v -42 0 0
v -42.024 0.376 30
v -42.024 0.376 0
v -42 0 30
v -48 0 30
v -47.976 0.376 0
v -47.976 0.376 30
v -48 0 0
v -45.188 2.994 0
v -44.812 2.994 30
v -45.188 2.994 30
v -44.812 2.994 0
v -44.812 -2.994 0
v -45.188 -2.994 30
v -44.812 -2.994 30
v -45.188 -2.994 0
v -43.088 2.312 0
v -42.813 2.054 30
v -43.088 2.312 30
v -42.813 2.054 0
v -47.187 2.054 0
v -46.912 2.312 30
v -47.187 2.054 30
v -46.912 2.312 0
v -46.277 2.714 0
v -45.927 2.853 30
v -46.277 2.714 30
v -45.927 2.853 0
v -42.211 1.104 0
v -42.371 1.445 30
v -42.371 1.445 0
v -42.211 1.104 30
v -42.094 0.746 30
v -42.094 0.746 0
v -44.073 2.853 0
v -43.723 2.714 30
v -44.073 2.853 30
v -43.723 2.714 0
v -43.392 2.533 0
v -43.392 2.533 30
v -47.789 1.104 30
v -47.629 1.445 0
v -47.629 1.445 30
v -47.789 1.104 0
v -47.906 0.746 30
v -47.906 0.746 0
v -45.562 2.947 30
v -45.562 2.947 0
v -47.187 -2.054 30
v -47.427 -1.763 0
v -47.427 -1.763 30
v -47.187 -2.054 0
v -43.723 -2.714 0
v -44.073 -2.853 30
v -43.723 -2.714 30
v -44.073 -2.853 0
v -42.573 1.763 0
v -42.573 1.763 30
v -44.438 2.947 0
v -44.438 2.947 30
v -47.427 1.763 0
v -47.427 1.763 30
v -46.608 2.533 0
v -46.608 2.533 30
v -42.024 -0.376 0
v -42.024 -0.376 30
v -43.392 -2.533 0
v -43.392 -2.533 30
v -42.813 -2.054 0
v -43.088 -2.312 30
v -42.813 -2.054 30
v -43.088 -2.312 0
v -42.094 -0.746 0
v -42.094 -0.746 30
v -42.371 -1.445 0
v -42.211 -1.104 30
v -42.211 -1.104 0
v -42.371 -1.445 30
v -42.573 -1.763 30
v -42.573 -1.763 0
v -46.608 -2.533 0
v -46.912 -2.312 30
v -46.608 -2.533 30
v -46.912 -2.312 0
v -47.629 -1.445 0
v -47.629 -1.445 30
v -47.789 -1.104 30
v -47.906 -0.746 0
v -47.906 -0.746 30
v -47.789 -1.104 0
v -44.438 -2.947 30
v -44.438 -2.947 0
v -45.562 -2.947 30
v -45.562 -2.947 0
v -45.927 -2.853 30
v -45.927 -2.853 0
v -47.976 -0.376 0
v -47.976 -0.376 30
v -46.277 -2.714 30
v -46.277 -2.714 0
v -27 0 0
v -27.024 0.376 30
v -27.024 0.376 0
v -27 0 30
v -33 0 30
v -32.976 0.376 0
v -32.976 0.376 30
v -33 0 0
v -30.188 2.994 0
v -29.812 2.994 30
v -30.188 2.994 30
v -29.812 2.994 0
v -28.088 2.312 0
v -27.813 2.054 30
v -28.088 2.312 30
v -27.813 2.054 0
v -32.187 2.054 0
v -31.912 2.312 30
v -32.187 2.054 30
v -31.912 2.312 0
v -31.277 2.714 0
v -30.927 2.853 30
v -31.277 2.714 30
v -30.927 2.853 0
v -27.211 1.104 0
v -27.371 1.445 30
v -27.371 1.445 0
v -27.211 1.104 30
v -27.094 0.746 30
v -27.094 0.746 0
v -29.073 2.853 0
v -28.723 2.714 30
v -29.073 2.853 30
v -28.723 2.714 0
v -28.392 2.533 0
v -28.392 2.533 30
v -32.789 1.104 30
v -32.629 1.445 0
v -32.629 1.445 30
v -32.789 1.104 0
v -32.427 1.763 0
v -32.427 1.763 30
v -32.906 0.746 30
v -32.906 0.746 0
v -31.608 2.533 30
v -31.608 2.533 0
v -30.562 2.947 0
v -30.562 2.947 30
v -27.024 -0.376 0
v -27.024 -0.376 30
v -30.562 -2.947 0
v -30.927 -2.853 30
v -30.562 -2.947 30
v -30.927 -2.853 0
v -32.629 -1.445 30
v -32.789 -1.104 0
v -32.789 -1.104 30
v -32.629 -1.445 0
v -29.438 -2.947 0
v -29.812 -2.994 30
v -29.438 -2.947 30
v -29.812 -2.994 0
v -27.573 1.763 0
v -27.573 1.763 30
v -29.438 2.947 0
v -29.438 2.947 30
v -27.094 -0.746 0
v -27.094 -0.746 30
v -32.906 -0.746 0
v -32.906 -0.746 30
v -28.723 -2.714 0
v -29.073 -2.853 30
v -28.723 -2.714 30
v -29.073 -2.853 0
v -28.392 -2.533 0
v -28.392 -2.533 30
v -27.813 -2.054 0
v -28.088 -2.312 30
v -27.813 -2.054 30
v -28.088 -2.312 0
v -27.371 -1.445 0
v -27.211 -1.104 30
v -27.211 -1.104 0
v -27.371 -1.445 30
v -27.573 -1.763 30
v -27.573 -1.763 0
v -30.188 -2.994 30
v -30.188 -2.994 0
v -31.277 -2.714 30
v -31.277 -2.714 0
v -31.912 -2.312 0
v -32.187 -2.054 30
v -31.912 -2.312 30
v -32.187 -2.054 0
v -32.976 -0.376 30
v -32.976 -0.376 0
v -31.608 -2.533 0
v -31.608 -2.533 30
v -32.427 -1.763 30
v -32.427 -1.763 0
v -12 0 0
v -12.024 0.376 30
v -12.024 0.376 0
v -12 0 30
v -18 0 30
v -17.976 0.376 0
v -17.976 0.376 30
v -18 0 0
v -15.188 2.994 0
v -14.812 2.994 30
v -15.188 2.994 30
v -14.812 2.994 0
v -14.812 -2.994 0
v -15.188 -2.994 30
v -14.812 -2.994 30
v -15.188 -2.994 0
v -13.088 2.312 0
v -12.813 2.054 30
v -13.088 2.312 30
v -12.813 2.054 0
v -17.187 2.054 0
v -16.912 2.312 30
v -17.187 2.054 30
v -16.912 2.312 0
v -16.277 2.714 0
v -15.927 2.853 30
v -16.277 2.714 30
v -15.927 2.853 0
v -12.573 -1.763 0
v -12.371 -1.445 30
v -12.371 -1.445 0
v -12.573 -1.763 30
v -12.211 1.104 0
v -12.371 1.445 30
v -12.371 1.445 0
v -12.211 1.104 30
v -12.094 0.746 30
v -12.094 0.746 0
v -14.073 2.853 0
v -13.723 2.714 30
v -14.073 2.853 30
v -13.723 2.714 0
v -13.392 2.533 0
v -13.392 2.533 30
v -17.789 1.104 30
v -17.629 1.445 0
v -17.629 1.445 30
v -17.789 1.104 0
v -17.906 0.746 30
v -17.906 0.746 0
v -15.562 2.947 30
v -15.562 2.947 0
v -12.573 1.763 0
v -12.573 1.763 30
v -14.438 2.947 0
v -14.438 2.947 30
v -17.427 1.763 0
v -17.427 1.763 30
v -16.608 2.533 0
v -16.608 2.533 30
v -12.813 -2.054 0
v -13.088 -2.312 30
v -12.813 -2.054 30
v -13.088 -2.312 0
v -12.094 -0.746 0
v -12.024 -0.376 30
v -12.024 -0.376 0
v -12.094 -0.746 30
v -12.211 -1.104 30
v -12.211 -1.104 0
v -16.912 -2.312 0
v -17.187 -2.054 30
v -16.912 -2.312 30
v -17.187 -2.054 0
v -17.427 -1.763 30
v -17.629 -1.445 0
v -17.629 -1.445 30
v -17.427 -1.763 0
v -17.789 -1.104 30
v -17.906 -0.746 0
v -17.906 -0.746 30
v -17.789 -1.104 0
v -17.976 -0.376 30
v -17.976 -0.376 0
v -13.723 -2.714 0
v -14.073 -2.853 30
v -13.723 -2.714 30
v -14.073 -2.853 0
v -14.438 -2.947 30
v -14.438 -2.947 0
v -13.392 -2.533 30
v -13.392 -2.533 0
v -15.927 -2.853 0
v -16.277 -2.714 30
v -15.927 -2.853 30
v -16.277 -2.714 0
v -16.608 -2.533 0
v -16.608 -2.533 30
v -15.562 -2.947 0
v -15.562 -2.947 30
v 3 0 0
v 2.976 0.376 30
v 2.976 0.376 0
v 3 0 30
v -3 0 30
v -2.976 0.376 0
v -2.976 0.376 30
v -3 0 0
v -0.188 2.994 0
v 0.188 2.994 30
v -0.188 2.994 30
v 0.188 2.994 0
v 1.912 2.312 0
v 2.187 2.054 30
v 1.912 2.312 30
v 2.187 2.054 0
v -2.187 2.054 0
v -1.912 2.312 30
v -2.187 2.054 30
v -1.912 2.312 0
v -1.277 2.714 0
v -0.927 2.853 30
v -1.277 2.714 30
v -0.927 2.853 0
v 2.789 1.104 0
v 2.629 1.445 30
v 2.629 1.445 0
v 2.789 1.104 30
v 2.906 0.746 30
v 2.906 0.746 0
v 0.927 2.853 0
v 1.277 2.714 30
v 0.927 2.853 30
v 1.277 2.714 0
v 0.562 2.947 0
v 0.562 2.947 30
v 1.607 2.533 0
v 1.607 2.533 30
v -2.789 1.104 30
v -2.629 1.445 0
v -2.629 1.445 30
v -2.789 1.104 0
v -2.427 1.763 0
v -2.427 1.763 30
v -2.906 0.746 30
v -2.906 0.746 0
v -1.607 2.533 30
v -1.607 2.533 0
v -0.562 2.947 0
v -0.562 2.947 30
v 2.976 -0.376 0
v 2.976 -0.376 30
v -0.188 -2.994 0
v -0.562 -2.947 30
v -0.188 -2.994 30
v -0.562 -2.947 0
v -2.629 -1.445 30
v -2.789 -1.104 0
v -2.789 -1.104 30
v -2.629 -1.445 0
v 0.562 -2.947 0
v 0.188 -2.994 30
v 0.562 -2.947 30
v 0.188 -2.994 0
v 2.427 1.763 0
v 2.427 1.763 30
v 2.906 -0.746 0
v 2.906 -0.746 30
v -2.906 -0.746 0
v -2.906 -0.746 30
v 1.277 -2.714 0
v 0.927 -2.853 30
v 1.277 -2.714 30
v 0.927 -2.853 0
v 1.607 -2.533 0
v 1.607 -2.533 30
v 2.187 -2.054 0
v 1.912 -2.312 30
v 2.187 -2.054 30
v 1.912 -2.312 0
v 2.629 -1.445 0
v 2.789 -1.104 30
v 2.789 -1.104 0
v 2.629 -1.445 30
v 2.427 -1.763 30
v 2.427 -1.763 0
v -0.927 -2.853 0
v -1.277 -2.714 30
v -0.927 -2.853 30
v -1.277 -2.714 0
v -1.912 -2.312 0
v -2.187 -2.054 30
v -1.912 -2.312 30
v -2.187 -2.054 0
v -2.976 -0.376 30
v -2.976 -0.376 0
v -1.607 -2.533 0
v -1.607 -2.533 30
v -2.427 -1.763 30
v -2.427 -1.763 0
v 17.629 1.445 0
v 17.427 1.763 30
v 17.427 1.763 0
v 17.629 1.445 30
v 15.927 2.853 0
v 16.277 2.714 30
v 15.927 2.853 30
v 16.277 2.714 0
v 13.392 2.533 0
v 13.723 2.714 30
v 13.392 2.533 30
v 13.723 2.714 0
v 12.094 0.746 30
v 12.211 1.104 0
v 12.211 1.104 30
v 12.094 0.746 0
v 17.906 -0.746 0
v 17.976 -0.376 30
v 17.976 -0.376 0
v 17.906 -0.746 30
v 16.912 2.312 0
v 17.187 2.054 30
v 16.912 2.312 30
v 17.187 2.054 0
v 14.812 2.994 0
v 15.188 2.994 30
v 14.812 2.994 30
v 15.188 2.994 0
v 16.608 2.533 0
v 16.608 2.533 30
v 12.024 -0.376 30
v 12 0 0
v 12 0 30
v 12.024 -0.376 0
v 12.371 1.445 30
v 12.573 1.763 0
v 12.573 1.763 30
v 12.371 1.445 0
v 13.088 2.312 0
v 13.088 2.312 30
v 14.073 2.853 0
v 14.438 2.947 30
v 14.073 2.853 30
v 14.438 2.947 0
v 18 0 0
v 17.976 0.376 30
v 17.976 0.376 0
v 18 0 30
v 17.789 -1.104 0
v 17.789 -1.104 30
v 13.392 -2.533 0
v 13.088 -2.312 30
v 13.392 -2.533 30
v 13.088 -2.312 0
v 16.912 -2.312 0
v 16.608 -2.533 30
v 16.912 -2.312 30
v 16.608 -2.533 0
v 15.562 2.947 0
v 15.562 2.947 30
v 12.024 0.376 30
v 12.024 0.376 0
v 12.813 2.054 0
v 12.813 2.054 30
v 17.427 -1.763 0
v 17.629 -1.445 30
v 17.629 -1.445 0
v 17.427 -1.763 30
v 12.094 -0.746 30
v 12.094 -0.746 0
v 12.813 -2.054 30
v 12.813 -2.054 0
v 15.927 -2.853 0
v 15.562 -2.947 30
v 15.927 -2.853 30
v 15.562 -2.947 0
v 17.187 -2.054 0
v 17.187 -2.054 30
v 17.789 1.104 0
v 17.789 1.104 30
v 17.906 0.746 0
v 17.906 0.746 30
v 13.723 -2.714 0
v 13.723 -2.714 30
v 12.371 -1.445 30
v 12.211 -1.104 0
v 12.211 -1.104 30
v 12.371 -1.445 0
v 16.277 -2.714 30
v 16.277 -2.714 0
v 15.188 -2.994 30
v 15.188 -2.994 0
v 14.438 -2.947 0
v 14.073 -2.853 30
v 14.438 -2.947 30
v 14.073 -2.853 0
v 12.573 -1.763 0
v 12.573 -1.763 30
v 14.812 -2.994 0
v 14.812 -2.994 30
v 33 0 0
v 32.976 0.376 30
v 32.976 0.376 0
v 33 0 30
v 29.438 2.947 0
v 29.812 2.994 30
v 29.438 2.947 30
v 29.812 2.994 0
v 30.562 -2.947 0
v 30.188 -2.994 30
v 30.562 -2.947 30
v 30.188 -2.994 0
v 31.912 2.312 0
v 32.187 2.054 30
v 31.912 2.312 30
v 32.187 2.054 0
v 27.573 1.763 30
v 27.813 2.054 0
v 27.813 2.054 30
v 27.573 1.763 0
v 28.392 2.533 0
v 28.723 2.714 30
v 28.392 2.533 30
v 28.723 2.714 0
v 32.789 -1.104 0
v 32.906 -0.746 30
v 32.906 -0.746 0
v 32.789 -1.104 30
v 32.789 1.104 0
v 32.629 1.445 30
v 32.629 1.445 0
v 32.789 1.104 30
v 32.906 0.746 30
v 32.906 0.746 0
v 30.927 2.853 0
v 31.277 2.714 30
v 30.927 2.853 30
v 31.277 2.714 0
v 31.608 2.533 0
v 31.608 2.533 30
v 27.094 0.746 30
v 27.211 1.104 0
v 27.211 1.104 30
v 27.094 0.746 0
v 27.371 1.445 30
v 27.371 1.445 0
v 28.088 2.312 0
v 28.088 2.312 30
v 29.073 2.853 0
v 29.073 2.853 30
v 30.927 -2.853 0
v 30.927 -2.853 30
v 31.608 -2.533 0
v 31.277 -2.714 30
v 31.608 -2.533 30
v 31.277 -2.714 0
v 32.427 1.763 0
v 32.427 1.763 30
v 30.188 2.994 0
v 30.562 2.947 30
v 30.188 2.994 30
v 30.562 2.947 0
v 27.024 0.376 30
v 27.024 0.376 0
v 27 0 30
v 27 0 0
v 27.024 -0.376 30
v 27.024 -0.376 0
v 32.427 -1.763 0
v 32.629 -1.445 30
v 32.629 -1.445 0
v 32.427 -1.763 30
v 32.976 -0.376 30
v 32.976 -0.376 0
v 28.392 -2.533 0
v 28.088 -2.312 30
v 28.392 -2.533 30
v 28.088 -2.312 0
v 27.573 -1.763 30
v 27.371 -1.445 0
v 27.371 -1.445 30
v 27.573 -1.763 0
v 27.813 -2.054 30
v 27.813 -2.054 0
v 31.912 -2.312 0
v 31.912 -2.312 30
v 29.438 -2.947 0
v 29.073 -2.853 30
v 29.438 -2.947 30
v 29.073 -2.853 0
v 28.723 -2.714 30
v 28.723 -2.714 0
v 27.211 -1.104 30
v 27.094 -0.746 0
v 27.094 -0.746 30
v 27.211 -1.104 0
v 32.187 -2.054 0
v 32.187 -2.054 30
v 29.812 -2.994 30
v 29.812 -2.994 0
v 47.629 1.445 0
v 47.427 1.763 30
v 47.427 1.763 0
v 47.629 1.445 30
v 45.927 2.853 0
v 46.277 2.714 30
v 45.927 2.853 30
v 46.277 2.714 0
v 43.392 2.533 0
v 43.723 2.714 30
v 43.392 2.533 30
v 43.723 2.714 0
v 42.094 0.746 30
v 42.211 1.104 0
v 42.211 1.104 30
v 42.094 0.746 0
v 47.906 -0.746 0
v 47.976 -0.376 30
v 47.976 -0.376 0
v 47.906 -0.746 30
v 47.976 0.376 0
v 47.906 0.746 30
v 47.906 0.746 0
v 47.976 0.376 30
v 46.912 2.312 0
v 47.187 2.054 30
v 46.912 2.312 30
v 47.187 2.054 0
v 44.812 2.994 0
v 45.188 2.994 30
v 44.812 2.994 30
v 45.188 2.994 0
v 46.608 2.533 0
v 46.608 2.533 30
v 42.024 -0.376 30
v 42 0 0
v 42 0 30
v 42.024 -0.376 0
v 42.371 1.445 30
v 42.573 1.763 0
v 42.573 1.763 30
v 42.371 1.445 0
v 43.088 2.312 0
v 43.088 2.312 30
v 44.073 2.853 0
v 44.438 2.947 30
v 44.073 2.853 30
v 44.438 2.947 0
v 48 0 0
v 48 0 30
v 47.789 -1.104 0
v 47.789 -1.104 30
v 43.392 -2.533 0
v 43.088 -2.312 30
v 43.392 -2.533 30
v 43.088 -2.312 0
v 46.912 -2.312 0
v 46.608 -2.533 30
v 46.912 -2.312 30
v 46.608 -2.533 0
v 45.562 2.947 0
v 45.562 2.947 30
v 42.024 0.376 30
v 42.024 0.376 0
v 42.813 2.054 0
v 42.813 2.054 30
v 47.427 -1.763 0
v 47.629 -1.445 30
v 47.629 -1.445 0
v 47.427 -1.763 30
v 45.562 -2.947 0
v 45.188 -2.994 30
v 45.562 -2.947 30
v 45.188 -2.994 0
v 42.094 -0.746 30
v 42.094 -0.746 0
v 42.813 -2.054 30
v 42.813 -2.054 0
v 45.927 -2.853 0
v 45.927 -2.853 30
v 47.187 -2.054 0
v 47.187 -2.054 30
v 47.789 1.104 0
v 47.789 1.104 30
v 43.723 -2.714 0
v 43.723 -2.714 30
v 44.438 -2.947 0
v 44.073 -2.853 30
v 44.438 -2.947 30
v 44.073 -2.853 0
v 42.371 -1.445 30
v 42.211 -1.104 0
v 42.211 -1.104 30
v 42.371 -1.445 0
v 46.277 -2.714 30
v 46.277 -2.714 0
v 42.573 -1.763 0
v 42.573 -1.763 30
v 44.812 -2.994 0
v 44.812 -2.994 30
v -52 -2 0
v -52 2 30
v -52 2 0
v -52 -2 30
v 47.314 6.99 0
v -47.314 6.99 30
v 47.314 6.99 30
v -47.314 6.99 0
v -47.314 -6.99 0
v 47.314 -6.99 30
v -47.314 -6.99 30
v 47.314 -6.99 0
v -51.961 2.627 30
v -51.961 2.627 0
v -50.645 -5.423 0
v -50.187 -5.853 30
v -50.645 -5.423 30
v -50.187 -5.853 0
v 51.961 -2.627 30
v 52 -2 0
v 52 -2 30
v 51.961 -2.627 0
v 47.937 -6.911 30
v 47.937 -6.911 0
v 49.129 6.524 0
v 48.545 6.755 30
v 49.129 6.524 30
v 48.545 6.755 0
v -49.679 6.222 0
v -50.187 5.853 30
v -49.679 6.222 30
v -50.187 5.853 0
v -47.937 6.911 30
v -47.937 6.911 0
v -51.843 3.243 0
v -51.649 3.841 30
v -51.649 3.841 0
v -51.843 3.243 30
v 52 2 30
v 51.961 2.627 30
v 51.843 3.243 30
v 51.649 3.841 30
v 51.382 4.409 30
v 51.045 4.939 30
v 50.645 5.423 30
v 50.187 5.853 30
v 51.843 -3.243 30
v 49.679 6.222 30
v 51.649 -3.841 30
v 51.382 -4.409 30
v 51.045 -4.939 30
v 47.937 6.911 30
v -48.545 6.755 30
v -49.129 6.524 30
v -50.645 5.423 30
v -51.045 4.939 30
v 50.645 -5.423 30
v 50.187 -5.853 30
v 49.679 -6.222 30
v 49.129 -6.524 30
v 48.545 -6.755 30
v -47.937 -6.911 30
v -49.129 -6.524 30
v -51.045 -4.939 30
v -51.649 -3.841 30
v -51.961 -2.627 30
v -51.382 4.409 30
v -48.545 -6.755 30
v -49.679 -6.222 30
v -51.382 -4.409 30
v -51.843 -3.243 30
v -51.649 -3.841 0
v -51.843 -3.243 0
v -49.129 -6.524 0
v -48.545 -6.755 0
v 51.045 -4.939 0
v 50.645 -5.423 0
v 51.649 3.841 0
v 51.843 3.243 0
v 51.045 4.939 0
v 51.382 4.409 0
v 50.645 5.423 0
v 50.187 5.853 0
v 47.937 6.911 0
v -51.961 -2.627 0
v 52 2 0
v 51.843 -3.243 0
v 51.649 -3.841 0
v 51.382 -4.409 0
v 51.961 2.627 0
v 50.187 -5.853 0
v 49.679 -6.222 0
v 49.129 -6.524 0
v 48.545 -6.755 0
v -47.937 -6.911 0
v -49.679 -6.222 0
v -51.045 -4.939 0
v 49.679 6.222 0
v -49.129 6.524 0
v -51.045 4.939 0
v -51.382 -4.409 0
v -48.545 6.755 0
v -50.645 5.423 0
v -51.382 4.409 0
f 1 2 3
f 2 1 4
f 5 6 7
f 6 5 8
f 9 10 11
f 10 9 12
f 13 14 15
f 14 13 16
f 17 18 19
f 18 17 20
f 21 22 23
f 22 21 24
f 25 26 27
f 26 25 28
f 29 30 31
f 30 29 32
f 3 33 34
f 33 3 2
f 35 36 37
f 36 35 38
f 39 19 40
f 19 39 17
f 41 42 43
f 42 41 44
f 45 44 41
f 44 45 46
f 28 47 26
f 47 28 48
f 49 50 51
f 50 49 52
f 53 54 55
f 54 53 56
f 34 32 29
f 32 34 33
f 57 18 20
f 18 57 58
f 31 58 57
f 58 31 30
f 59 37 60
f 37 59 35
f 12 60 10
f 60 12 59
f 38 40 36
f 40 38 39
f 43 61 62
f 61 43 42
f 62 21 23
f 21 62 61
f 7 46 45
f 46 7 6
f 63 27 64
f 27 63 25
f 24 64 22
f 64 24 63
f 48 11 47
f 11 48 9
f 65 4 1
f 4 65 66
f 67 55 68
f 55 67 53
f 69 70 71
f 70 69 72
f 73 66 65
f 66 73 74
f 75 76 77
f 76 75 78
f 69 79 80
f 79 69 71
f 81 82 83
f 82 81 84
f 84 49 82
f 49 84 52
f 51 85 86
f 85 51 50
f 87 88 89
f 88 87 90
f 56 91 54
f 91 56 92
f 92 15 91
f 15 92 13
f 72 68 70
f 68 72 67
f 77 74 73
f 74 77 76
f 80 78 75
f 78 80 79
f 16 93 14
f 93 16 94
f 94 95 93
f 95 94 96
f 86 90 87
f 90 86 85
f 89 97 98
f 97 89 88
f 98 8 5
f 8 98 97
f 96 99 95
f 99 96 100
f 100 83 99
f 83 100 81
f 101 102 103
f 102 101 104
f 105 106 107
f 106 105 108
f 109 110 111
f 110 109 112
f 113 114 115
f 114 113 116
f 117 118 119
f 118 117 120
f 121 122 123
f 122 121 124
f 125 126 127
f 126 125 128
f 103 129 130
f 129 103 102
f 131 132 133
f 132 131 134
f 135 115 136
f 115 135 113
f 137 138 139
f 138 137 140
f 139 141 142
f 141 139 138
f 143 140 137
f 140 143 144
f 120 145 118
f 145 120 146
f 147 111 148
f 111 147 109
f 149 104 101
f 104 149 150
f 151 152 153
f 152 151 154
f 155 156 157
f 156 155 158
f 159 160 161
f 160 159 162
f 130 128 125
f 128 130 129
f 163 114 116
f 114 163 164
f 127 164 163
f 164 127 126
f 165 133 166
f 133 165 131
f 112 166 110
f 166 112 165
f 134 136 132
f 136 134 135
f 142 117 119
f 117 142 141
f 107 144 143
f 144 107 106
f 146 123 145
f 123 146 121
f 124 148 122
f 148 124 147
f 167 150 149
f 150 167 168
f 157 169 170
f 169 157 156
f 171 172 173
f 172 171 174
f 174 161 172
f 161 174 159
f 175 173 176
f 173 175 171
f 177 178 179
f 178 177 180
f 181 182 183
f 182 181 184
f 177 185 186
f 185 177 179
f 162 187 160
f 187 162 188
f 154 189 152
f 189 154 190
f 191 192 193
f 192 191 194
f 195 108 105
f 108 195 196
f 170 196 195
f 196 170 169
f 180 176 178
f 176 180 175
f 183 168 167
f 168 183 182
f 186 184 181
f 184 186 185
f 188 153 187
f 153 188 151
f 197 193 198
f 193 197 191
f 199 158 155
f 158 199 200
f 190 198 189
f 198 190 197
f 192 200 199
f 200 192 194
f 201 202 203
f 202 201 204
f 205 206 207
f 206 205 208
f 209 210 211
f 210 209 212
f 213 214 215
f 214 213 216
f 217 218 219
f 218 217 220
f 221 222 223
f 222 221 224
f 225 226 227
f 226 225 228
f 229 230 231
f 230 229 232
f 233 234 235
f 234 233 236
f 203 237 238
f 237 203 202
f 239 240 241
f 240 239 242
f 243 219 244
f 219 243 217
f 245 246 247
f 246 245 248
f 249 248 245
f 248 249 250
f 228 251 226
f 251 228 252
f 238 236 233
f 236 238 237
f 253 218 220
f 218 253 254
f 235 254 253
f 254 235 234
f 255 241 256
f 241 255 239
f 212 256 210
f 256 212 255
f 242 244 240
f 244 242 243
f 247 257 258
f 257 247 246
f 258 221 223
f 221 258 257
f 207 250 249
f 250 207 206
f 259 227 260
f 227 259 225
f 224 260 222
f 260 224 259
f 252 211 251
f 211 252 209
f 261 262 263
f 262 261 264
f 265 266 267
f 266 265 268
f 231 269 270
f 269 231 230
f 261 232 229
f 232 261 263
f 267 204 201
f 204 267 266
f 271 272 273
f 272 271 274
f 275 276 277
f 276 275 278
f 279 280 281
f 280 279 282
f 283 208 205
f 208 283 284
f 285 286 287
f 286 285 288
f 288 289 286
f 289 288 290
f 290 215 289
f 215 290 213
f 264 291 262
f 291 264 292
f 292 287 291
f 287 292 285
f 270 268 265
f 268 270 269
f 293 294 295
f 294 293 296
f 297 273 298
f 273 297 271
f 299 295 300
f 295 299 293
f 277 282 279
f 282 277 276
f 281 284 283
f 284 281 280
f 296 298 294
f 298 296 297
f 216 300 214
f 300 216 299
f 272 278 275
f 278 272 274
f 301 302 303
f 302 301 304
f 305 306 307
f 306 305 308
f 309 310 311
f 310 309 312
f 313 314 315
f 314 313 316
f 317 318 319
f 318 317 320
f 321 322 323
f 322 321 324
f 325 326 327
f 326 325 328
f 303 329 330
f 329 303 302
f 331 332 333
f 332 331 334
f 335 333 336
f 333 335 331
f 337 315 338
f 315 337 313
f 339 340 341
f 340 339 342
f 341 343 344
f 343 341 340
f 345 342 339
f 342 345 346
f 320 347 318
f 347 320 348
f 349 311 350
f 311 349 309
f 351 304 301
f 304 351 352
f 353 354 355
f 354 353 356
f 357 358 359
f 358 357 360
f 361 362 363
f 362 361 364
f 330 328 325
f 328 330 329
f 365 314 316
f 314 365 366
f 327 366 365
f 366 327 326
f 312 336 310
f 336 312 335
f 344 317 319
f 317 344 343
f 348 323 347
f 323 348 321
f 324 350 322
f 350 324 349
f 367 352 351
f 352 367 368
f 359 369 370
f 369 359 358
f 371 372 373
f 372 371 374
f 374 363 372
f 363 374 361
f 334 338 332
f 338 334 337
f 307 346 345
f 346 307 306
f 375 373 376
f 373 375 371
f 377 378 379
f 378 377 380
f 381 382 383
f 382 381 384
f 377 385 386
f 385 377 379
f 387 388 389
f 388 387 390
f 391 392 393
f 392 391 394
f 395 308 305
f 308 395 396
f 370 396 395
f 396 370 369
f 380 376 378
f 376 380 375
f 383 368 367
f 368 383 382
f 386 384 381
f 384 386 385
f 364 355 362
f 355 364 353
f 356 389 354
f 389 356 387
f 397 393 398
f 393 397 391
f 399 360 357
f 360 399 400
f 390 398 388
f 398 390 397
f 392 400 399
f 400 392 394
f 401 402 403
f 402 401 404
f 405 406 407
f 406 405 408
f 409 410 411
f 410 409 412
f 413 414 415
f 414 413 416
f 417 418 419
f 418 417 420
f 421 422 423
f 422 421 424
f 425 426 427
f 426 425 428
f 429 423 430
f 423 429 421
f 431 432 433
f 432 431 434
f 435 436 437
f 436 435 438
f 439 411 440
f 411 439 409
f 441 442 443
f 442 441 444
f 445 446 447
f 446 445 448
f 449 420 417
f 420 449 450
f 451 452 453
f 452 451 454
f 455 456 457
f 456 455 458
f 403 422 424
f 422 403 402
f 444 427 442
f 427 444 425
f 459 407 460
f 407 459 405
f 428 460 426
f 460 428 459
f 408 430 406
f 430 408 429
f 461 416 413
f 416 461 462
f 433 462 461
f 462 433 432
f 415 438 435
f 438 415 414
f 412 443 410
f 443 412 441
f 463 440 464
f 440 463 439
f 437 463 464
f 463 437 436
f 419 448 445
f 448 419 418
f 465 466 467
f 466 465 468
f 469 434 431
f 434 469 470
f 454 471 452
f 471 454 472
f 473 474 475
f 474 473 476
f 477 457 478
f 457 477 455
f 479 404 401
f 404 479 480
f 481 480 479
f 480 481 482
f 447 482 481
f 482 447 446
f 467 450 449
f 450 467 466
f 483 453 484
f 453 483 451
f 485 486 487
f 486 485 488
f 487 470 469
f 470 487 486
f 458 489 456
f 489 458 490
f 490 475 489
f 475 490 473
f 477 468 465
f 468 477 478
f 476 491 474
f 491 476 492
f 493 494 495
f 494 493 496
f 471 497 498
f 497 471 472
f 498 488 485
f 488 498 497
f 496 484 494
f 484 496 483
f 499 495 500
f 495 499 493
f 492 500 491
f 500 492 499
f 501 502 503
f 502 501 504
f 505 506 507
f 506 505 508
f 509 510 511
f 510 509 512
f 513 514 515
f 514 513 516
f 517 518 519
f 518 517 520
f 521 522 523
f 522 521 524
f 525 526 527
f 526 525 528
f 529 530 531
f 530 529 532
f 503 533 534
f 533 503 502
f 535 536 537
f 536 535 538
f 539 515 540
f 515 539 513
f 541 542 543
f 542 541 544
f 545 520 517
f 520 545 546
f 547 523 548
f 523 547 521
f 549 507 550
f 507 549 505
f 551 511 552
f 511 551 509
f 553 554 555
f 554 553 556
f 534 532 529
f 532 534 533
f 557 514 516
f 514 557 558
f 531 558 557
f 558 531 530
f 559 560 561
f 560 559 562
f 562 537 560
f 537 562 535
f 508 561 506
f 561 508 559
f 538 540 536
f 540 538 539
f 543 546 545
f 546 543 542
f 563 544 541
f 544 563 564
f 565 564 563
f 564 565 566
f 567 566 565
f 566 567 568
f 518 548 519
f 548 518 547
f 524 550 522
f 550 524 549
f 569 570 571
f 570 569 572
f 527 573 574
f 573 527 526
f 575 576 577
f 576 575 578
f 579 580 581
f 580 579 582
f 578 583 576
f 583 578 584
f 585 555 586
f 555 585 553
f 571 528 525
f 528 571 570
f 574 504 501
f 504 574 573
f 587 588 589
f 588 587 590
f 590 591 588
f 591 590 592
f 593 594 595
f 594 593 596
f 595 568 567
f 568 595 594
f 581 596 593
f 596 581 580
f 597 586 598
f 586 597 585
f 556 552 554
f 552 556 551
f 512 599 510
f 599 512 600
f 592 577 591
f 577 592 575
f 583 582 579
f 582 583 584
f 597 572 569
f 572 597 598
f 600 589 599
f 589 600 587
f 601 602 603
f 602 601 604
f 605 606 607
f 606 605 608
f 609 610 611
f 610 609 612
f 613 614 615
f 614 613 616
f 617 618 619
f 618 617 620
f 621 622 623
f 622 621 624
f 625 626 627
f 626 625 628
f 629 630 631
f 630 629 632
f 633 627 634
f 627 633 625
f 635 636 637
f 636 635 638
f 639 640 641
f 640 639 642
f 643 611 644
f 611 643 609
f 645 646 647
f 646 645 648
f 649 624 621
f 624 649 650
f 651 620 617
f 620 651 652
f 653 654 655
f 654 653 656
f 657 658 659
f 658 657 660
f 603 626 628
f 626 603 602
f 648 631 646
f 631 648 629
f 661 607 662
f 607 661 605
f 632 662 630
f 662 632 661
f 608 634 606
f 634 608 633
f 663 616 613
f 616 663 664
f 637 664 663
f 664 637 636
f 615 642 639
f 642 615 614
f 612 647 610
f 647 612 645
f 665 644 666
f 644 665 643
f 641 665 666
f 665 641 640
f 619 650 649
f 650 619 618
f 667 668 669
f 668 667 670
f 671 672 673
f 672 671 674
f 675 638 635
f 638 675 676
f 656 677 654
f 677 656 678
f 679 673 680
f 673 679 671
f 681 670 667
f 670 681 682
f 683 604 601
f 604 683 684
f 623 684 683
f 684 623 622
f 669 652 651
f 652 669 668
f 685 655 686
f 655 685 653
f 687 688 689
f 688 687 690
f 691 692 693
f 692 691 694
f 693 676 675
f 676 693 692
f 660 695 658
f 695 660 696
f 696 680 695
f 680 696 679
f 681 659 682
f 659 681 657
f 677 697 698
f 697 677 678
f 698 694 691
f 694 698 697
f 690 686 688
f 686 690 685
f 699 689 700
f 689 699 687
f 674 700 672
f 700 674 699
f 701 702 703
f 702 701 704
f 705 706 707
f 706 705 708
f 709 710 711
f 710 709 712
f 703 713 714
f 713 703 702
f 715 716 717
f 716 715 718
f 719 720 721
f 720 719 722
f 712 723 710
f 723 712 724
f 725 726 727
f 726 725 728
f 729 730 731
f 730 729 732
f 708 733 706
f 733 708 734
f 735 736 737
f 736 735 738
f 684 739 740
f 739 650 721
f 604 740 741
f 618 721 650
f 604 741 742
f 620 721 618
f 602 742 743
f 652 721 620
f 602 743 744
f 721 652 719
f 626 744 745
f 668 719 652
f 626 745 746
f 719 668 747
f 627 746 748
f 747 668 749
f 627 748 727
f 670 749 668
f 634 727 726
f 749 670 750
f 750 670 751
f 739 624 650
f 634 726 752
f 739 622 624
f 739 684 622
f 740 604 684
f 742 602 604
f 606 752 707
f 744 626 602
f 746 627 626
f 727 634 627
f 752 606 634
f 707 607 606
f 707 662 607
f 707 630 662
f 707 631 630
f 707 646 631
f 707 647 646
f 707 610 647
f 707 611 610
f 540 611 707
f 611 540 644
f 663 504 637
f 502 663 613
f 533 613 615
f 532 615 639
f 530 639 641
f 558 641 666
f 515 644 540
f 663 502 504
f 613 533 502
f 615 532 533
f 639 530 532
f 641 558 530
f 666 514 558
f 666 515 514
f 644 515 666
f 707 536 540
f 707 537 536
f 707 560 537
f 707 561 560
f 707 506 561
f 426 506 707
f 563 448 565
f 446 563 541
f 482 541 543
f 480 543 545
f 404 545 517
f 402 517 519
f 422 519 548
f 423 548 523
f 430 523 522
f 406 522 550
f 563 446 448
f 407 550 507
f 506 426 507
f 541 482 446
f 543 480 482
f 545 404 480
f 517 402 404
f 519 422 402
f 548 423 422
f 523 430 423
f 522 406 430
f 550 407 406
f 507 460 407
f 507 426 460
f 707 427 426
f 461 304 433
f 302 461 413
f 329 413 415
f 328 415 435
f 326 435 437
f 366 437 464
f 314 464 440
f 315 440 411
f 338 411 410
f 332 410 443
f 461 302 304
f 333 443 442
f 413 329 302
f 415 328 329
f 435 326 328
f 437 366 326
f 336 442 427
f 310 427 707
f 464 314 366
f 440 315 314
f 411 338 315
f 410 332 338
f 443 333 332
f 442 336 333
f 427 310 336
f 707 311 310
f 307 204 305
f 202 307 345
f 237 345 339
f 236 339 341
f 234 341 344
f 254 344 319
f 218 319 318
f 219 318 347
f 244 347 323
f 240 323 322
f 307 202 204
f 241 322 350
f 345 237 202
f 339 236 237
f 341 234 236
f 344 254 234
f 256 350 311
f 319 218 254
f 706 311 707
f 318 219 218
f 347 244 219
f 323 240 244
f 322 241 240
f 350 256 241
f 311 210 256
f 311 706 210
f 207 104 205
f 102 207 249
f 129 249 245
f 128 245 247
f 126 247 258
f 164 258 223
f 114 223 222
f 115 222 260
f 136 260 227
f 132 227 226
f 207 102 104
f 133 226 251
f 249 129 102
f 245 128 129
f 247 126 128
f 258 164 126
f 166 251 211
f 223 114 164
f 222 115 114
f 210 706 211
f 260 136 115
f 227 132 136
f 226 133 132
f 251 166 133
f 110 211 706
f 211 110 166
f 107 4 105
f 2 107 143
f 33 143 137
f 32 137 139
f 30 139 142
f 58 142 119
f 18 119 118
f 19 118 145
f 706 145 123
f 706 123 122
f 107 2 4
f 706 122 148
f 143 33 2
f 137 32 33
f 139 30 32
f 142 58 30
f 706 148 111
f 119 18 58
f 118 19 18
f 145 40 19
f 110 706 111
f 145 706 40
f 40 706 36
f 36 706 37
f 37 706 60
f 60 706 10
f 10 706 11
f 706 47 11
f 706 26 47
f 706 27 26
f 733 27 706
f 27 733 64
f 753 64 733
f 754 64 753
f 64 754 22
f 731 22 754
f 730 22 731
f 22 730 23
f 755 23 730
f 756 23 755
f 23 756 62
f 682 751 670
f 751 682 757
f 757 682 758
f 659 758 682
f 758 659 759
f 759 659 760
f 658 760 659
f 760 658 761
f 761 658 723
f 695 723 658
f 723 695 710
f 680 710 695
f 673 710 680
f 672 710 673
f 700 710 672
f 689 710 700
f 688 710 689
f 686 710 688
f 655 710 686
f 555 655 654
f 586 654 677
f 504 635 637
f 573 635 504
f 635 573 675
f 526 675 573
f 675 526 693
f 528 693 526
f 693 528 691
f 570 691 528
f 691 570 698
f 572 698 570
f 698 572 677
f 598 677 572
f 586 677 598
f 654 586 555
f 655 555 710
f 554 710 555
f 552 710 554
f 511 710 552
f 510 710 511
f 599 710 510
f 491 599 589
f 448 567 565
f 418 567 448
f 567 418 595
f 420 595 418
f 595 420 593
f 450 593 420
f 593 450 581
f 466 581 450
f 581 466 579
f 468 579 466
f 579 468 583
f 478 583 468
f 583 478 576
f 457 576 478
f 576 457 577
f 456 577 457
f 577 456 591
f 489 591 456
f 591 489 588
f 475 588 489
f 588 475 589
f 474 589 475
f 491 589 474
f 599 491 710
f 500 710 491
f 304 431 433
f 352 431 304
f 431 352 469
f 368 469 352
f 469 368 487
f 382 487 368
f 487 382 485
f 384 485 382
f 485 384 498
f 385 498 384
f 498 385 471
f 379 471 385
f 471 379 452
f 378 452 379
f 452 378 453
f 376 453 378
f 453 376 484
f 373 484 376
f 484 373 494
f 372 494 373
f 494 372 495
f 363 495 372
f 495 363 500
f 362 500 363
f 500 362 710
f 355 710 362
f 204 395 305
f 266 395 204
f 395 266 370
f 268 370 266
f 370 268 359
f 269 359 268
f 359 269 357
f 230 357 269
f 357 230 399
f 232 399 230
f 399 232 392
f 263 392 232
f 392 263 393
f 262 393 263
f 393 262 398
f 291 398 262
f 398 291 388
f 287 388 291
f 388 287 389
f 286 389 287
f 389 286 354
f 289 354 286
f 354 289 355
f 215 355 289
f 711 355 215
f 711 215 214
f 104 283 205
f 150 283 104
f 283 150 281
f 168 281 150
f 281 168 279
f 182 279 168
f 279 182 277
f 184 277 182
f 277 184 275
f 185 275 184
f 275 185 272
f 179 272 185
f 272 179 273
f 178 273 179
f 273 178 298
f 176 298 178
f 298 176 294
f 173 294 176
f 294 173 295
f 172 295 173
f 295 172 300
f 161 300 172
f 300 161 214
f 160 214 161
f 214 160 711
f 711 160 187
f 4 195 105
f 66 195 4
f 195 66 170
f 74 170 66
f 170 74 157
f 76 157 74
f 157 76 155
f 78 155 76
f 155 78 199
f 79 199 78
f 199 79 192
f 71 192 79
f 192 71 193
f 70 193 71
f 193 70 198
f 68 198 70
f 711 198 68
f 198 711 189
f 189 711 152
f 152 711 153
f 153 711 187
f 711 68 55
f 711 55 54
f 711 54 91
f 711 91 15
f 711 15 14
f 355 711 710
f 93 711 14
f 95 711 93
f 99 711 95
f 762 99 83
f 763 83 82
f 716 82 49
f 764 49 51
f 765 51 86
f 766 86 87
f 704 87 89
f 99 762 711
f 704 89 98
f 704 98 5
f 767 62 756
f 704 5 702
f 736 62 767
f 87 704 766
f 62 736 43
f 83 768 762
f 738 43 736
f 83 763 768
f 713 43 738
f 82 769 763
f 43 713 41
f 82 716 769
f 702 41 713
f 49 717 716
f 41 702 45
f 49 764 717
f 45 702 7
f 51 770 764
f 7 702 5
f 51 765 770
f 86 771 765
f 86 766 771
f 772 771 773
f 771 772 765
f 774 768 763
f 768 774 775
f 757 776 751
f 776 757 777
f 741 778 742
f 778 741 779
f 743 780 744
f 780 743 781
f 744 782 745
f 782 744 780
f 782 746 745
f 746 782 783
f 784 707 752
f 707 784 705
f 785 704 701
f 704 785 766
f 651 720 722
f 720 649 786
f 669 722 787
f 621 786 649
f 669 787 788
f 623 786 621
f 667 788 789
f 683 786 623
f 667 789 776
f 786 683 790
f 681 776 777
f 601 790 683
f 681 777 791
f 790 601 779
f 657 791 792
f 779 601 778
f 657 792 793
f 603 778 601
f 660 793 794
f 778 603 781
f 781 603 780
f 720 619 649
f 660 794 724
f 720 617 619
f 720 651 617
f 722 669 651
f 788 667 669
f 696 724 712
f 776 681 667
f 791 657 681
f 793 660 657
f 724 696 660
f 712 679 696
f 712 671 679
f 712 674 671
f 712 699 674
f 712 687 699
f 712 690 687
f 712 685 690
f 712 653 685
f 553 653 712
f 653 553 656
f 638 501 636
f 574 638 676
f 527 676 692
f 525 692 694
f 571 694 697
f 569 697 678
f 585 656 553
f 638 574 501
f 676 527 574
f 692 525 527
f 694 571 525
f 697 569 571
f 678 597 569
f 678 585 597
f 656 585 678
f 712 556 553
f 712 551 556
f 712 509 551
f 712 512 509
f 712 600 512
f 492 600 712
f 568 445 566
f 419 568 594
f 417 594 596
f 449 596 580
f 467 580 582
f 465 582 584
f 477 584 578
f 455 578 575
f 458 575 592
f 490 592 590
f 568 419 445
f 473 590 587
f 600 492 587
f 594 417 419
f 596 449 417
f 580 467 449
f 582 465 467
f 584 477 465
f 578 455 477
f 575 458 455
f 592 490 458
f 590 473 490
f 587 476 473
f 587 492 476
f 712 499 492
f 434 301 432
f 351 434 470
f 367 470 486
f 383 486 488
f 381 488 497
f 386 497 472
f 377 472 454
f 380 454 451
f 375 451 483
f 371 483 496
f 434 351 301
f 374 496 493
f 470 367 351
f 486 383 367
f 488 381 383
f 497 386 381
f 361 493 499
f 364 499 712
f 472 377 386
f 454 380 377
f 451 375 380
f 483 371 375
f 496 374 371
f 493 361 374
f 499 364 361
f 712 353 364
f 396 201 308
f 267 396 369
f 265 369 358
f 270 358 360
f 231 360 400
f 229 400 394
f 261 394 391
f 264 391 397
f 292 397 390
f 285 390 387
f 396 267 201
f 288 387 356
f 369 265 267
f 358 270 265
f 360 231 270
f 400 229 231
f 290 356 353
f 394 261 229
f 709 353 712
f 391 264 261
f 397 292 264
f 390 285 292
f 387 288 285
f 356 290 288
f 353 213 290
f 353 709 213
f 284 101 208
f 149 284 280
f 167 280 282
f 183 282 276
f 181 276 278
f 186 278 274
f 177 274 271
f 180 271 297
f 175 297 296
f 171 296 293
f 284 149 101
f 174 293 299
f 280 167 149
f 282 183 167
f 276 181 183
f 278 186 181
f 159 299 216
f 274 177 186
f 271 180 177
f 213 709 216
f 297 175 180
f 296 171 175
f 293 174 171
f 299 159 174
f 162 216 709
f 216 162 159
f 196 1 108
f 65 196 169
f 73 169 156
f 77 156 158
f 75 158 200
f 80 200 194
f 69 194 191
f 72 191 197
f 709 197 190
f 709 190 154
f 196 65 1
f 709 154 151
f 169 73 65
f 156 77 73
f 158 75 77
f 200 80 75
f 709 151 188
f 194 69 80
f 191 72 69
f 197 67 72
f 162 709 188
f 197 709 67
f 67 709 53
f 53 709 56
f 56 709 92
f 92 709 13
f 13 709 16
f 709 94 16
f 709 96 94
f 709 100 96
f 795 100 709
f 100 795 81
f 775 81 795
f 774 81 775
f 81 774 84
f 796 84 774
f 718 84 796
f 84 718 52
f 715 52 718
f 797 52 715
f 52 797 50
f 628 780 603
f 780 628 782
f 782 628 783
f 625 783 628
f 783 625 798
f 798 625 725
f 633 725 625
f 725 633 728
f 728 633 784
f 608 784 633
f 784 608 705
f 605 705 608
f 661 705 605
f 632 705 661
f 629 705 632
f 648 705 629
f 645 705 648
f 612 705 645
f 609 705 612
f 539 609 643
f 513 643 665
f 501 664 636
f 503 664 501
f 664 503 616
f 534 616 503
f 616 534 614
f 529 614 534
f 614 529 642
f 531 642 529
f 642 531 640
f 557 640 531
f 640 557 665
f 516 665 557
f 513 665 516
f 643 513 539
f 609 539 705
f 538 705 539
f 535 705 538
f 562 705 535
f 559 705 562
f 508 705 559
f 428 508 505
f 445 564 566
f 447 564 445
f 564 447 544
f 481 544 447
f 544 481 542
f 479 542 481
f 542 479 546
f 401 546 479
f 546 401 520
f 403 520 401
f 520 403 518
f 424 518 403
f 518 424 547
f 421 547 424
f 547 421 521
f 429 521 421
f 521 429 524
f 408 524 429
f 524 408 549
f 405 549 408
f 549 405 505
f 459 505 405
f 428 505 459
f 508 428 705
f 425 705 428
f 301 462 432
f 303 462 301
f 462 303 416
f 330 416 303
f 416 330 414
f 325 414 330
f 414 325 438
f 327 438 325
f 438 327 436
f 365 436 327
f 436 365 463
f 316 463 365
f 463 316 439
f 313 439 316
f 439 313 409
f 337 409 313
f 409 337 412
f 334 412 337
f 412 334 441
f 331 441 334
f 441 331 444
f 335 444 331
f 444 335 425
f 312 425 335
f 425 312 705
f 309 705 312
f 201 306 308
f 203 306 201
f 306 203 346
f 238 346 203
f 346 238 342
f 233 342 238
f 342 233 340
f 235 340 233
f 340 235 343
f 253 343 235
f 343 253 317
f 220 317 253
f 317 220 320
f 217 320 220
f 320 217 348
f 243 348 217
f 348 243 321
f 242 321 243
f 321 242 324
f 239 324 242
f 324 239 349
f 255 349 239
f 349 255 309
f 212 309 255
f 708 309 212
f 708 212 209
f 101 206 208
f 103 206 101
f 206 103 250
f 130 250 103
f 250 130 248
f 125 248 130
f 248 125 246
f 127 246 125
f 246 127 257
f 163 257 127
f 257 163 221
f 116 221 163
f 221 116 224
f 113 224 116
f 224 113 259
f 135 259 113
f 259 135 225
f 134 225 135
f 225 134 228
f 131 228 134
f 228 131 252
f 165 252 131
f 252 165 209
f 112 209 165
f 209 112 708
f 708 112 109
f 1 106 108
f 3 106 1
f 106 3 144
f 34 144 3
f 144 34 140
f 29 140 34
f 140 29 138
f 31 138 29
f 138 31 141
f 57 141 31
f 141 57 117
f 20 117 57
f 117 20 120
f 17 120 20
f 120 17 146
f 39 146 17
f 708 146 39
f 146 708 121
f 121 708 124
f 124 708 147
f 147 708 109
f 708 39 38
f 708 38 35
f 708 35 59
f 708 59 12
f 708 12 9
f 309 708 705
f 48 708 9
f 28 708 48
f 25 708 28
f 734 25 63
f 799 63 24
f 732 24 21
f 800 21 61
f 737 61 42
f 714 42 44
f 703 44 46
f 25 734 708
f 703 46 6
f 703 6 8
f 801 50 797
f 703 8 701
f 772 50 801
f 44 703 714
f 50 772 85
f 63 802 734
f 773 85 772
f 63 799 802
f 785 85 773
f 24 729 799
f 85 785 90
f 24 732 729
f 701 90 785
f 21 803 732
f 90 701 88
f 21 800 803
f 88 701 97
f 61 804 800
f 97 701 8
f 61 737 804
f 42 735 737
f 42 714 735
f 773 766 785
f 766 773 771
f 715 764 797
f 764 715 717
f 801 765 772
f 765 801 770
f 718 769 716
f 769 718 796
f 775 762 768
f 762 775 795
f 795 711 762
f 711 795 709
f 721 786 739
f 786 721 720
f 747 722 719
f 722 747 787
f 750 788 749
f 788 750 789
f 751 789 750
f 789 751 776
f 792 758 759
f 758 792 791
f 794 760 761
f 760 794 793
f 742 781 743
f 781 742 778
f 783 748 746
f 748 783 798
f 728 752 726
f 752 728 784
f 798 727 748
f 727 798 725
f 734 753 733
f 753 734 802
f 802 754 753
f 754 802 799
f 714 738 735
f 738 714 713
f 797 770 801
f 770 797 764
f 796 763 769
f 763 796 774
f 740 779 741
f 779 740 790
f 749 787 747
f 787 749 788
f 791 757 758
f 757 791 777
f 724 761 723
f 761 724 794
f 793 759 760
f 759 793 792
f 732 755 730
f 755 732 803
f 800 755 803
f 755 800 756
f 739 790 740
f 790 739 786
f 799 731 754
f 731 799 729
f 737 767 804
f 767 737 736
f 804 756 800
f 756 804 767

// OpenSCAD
$fn = 50;


difference() {
	union() {
		hull() {
			translate(v = [-47.0000000000, 2.0000000000, 0]) {
				cylinder(h = 30, r = 5);
			}
			translate(v = [47.0000000000, 2.0000000000, 0]) {
				cylinder(h = 30, r = 5);
			}
			translate(v = [-47.0000000000, -2.0000000000, 0]) {
				cylinder(h = 30, r = 5);
			}
			translate(v = [47.0000000000, -2.0000000000, 0]) {
				cylinder(h = 30, r = 5);
			}
		}
	}
	union() {
		translate(v = [-45.0000000000, 0.0000000000, 0]) {
			translate(v = [0, 0, -100]) {
				cylinder(h = 200, r = 3.0000000000);
			}
		}
		translate(v = [-30.0000000000, 0.0000000000, 0]) {
			translate(v = [0, 0, -100]) {
				cylinder(h = 200, r = 3.0000000000);
			}
		}
		translate(v = [-15.0000000000, 0.0000000000, 0]) {
			translate(v = [0, 0, -100]) {
				cylinder(h = 200, r = 3.0000000000);
			}
		}
		translate(v = [0, 0, -100]) {
			cylinder(h = 200, r = 3.0000000000);
		}
		translate(v = [15.0000000000, 0.0000000000, 0]) {
			translate(v = [0, 0, -100]) {
				cylinder(h = 200, r = 3.0000000000);
			}
		}
		translate(v = [30.0000000000, 0.0000000000, 0]) {
			translate(v = [0, 0, -100]) {
				cylinder(h = 200, r = 3.0000000000);
			}
		}
		translate(v = [45.0000000000, 0.0000000000, 0]) {
			translate(v = [0, 0, -100]) {
				cylinder(h = 200, r = 3.0000000000);
			}
		}
	}
}
